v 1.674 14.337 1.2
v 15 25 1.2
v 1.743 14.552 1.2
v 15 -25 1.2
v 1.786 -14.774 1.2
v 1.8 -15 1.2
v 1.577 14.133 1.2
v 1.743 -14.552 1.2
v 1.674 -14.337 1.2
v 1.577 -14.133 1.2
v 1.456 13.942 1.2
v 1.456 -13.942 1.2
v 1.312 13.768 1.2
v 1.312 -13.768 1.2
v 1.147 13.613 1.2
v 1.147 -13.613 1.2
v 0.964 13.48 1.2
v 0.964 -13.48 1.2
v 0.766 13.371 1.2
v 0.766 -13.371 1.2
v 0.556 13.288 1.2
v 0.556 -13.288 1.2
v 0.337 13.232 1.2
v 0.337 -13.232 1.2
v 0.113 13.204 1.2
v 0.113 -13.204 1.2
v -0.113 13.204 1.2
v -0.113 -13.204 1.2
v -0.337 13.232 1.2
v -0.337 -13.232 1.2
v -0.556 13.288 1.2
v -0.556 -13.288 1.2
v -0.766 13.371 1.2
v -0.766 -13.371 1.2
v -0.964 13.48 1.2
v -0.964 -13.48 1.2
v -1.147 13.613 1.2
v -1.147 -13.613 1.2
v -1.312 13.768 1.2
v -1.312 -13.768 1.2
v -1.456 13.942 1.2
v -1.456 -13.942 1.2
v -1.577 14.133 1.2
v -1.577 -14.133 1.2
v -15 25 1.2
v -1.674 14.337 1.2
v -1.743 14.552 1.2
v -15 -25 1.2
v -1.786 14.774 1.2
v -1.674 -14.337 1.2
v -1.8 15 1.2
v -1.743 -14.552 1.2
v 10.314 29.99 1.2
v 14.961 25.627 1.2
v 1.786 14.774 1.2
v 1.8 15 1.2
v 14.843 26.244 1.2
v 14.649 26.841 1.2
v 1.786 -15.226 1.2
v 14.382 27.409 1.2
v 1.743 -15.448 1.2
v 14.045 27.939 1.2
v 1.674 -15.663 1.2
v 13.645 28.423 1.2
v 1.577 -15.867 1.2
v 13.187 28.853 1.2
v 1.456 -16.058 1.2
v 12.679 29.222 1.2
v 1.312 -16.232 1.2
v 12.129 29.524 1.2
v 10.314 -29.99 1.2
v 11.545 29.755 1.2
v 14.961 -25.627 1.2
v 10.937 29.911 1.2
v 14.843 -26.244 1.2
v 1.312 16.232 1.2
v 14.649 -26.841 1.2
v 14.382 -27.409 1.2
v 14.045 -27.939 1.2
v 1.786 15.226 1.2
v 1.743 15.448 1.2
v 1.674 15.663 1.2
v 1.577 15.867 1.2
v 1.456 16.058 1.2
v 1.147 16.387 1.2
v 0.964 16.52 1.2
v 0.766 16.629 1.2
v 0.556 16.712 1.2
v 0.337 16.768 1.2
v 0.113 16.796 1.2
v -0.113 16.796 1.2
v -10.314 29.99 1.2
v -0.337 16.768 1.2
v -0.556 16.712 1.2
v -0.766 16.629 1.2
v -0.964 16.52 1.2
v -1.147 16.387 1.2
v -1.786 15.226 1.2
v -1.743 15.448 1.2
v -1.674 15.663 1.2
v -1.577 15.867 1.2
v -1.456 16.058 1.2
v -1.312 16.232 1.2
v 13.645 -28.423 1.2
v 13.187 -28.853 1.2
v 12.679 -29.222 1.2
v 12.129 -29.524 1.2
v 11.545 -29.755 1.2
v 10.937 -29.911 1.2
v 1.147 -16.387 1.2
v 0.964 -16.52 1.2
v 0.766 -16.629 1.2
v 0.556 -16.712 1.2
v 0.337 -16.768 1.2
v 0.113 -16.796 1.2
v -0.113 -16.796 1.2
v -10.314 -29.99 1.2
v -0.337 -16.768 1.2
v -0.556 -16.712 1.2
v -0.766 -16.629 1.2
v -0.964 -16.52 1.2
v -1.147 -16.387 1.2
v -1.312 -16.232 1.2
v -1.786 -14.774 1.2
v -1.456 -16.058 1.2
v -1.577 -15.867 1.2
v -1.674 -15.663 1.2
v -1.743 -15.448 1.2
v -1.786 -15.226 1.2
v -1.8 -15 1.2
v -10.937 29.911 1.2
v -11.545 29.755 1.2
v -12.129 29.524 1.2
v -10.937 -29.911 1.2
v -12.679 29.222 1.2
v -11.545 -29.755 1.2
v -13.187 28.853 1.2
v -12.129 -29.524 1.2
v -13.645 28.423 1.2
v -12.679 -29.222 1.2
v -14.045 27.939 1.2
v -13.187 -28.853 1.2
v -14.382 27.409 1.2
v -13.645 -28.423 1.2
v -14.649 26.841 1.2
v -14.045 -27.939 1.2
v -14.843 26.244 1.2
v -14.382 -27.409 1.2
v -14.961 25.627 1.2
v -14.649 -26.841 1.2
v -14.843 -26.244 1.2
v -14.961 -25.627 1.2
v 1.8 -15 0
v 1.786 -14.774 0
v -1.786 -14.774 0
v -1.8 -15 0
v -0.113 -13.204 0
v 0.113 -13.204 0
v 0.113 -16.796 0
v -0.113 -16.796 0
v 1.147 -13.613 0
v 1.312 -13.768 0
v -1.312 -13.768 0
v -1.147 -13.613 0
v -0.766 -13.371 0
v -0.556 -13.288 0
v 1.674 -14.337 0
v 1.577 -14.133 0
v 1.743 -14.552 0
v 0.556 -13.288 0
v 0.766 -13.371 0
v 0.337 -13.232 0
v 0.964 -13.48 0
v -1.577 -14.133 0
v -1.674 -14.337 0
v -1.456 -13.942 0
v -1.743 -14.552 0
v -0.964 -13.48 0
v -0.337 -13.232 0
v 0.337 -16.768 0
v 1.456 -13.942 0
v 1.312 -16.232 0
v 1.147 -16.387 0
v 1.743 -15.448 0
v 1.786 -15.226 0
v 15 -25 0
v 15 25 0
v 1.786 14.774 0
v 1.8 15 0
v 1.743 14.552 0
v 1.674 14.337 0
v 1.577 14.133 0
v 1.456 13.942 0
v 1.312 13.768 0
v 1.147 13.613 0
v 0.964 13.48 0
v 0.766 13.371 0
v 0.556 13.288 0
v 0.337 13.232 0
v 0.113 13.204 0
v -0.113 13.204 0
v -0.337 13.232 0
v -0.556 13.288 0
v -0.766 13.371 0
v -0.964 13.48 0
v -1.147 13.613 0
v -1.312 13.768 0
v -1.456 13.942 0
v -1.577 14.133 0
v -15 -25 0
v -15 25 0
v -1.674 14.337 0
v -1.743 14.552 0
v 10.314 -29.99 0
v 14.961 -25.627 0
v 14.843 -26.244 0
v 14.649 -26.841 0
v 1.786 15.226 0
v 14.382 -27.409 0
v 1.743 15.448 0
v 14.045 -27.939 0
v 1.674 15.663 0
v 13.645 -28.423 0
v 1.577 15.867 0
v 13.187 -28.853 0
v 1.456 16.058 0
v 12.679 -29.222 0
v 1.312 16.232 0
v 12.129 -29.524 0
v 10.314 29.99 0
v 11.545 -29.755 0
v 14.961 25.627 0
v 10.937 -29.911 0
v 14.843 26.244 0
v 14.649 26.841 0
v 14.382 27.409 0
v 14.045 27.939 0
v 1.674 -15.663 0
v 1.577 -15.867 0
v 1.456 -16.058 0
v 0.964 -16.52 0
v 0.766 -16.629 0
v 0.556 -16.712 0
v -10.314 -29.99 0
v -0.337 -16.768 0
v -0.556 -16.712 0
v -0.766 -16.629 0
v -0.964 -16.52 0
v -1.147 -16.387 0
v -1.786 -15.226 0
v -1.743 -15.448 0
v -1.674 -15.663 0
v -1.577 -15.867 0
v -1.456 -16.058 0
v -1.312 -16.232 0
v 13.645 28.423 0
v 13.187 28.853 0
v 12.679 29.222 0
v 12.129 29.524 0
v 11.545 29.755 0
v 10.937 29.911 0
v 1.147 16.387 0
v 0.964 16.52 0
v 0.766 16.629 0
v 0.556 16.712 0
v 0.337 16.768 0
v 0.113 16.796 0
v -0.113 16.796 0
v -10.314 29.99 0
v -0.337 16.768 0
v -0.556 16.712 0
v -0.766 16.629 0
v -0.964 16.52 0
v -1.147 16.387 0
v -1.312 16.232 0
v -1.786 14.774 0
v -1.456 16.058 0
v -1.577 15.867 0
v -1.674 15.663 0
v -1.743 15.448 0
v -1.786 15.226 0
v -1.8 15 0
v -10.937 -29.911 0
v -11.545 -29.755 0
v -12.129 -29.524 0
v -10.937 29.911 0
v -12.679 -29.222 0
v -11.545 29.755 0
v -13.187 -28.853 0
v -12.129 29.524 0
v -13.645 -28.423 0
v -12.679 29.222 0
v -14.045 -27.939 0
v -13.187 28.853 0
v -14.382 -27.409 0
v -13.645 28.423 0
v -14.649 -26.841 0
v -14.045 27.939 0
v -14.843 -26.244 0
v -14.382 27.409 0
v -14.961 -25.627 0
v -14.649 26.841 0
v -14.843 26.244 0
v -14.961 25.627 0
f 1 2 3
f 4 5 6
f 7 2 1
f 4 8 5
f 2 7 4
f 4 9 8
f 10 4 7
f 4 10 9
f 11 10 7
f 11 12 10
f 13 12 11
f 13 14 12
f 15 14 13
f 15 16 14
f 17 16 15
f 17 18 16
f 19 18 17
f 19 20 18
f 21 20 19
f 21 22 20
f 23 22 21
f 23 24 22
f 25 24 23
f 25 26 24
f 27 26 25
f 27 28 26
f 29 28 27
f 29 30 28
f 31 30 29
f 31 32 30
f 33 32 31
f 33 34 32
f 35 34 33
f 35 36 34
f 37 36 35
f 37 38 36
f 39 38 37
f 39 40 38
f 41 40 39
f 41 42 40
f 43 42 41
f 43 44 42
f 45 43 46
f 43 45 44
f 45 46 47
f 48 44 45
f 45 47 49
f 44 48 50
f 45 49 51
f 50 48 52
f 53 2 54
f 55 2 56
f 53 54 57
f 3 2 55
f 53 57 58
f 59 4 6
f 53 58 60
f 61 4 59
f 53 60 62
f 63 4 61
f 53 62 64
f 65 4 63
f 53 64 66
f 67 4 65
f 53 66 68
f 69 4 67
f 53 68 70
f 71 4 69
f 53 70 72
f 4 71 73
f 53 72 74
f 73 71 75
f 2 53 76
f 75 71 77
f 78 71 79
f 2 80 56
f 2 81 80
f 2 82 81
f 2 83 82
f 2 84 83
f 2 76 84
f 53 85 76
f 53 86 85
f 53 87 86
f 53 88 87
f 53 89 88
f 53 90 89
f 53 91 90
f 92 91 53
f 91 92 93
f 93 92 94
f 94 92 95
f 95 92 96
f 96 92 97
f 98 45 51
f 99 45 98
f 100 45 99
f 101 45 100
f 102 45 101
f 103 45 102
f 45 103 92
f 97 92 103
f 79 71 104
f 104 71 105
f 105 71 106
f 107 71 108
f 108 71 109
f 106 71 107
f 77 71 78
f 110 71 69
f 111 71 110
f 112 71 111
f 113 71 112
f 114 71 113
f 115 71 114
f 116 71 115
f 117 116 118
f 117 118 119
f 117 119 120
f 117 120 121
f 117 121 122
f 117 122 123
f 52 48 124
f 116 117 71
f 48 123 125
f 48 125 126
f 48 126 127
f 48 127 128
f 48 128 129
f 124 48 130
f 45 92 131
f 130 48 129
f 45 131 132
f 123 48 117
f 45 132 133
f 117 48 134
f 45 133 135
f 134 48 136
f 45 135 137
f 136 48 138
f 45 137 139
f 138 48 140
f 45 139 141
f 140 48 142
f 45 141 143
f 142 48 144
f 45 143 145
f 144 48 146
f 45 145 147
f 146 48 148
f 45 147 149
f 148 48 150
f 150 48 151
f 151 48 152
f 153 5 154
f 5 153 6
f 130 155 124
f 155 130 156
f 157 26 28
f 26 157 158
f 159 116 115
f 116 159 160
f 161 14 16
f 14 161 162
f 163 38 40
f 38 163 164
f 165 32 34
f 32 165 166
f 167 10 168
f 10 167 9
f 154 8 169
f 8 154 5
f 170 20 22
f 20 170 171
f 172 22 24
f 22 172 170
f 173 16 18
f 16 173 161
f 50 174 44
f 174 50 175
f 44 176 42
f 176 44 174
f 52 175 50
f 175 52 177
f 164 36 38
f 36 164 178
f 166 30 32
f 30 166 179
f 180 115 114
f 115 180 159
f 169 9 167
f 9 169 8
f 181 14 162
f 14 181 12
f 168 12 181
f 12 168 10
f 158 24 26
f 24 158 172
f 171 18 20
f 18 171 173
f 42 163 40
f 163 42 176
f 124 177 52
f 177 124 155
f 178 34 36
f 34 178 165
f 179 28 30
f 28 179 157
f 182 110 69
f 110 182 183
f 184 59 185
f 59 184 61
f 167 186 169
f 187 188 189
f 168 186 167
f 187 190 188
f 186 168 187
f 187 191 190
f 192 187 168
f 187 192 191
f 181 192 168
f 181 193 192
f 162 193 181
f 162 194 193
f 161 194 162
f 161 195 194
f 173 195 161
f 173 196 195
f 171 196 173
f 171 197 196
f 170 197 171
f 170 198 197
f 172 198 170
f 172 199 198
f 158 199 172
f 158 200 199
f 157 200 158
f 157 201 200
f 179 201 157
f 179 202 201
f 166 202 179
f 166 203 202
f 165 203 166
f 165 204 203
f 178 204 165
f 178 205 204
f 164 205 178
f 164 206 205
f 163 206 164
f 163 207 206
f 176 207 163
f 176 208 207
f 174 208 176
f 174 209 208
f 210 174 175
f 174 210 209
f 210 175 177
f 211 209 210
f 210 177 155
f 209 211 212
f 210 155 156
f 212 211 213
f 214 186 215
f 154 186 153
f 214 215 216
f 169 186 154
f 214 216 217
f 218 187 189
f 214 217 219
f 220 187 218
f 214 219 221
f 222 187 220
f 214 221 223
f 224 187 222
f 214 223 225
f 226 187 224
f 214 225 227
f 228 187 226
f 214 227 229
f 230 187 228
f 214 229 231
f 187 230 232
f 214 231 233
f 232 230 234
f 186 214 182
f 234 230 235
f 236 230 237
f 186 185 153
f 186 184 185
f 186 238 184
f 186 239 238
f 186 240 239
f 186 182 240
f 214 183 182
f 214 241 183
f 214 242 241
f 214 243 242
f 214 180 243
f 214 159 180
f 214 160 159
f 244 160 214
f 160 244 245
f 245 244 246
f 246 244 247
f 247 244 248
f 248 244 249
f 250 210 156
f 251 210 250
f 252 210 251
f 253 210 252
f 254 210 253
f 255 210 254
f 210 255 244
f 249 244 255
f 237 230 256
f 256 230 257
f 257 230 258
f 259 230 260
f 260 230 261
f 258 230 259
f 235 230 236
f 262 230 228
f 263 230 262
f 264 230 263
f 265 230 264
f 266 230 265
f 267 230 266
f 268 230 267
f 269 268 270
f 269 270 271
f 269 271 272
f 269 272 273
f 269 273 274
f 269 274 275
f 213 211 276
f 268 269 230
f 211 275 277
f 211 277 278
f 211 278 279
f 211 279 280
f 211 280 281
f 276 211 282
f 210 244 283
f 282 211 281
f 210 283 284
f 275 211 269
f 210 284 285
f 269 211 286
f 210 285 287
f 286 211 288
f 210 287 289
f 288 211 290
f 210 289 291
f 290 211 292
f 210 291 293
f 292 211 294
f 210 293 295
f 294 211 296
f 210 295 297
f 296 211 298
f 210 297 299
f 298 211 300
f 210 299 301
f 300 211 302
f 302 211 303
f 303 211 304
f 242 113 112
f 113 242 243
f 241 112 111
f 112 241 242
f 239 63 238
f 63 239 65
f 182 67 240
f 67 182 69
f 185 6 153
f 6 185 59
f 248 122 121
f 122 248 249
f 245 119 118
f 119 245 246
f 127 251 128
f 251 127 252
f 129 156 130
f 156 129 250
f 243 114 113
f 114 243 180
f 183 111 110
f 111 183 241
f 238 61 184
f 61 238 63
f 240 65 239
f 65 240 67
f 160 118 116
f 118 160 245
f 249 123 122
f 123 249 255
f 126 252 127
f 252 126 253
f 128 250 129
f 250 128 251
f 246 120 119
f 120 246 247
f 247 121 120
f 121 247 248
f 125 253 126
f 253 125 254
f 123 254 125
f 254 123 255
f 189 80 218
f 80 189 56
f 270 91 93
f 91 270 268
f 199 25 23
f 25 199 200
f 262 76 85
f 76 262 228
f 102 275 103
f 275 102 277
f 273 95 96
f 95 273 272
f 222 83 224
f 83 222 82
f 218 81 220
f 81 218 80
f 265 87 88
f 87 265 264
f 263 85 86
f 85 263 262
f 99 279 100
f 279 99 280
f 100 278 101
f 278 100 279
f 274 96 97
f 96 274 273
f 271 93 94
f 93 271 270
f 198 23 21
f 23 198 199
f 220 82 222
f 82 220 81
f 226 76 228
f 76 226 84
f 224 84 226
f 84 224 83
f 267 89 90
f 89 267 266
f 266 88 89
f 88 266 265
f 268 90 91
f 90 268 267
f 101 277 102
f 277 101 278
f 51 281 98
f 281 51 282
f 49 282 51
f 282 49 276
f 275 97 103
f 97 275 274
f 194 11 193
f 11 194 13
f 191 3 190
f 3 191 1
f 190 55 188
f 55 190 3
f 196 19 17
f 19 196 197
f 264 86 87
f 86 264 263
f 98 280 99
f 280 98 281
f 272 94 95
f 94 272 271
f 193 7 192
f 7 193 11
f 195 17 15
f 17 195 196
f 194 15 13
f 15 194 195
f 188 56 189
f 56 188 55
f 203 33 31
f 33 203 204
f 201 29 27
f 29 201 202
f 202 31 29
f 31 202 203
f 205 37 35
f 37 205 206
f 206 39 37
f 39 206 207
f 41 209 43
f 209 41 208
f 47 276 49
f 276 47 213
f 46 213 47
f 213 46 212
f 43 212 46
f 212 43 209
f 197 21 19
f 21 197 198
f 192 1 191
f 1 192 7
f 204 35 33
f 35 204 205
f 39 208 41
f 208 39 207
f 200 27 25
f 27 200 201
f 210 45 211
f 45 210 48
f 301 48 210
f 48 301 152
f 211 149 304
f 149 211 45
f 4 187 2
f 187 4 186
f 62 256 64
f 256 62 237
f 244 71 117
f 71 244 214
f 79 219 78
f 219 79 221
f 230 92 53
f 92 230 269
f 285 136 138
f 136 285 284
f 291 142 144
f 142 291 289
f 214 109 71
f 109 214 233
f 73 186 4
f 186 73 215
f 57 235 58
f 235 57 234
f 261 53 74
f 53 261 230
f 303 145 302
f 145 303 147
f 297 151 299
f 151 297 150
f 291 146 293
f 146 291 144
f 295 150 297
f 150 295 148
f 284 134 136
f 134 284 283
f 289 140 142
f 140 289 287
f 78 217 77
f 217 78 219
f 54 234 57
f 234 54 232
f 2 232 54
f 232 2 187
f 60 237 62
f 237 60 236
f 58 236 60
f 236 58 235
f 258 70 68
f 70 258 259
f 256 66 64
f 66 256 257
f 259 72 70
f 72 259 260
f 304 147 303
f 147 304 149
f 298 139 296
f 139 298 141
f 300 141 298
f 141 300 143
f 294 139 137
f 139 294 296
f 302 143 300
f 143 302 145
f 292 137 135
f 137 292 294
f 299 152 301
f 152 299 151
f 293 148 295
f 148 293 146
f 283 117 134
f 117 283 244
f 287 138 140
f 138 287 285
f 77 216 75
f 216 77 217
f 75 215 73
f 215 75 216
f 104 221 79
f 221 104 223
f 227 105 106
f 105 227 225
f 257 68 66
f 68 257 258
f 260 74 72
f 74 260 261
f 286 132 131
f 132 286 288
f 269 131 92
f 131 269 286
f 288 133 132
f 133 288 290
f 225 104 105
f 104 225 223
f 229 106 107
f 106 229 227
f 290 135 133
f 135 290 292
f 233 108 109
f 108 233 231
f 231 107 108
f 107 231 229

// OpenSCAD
$fn = 50;


difference() {
	union() {
		hull() {
			translate(v = [-10.0000000000, 25.0000000000, 0]) {
				cylinder(h = 9, r = 5);
			}
			translate(v = [10.0000000000, 25.0000000000, 0]) {
				cylinder(h = 9, r = 5);
			}
			translate(v = [-10.0000000000, -25.0000000000, 0]) {
				cylinder(h = 9, r = 5);
			}
			translate(v = [10.0000000000, -25.0000000000, 0]) {
				cylinder(h = 9, r = 5);
			}
		}
	}
	union() {
		translate(v = [0, 0, 1.2000000000]) {
			hull() {
				translate(v = [-10.0000000000, 25.0000000000, 0]) {
					cylinder(h = 7.8000000000, r = 3.8000000000);
				}
				translate(v = [10.0000000000, 25.0000000000, 0]) {
					cylinder(h = 7.8000000000, r = 3.8000000000);
				}
				translate(v = [-10.0000000000, -25.0000000000, 0]) {
					cylinder(h = 7.8000000000, r = 3.8000000000);
				}
				translate(v = [10.0000000000, -25.0000000000, 0]) {
					cylinder(h = 7.8000000000, r = 3.8000000000);
				}
			}
		}
		#translate(v = [0.0000000000, -15.0000000000, 0]) {
			cylinder(h = 1.2000000000, r = 1.8000000000);
		}
		#translate(v = [0.0000000000, 15.0000000000, 0]) {
			cylinder(h = 1.2000000000, r = 1.8000000000);
		}
		translate(v = [-250.0000000000, -250.0000000000, 1.2000000000]) {
			cube(size = [500, 500, 500]);
		}
		translate(v = [-250.0000000000, -250.0000000000, 1.2000000000]) {
			cube(size = [500, 500, 500]);
		}
		translate(v = [-250.0000000000, -250.0000000000, 1.2000000000]) {
			cube(size = [500, 500, 500]);
		}
	}
}
